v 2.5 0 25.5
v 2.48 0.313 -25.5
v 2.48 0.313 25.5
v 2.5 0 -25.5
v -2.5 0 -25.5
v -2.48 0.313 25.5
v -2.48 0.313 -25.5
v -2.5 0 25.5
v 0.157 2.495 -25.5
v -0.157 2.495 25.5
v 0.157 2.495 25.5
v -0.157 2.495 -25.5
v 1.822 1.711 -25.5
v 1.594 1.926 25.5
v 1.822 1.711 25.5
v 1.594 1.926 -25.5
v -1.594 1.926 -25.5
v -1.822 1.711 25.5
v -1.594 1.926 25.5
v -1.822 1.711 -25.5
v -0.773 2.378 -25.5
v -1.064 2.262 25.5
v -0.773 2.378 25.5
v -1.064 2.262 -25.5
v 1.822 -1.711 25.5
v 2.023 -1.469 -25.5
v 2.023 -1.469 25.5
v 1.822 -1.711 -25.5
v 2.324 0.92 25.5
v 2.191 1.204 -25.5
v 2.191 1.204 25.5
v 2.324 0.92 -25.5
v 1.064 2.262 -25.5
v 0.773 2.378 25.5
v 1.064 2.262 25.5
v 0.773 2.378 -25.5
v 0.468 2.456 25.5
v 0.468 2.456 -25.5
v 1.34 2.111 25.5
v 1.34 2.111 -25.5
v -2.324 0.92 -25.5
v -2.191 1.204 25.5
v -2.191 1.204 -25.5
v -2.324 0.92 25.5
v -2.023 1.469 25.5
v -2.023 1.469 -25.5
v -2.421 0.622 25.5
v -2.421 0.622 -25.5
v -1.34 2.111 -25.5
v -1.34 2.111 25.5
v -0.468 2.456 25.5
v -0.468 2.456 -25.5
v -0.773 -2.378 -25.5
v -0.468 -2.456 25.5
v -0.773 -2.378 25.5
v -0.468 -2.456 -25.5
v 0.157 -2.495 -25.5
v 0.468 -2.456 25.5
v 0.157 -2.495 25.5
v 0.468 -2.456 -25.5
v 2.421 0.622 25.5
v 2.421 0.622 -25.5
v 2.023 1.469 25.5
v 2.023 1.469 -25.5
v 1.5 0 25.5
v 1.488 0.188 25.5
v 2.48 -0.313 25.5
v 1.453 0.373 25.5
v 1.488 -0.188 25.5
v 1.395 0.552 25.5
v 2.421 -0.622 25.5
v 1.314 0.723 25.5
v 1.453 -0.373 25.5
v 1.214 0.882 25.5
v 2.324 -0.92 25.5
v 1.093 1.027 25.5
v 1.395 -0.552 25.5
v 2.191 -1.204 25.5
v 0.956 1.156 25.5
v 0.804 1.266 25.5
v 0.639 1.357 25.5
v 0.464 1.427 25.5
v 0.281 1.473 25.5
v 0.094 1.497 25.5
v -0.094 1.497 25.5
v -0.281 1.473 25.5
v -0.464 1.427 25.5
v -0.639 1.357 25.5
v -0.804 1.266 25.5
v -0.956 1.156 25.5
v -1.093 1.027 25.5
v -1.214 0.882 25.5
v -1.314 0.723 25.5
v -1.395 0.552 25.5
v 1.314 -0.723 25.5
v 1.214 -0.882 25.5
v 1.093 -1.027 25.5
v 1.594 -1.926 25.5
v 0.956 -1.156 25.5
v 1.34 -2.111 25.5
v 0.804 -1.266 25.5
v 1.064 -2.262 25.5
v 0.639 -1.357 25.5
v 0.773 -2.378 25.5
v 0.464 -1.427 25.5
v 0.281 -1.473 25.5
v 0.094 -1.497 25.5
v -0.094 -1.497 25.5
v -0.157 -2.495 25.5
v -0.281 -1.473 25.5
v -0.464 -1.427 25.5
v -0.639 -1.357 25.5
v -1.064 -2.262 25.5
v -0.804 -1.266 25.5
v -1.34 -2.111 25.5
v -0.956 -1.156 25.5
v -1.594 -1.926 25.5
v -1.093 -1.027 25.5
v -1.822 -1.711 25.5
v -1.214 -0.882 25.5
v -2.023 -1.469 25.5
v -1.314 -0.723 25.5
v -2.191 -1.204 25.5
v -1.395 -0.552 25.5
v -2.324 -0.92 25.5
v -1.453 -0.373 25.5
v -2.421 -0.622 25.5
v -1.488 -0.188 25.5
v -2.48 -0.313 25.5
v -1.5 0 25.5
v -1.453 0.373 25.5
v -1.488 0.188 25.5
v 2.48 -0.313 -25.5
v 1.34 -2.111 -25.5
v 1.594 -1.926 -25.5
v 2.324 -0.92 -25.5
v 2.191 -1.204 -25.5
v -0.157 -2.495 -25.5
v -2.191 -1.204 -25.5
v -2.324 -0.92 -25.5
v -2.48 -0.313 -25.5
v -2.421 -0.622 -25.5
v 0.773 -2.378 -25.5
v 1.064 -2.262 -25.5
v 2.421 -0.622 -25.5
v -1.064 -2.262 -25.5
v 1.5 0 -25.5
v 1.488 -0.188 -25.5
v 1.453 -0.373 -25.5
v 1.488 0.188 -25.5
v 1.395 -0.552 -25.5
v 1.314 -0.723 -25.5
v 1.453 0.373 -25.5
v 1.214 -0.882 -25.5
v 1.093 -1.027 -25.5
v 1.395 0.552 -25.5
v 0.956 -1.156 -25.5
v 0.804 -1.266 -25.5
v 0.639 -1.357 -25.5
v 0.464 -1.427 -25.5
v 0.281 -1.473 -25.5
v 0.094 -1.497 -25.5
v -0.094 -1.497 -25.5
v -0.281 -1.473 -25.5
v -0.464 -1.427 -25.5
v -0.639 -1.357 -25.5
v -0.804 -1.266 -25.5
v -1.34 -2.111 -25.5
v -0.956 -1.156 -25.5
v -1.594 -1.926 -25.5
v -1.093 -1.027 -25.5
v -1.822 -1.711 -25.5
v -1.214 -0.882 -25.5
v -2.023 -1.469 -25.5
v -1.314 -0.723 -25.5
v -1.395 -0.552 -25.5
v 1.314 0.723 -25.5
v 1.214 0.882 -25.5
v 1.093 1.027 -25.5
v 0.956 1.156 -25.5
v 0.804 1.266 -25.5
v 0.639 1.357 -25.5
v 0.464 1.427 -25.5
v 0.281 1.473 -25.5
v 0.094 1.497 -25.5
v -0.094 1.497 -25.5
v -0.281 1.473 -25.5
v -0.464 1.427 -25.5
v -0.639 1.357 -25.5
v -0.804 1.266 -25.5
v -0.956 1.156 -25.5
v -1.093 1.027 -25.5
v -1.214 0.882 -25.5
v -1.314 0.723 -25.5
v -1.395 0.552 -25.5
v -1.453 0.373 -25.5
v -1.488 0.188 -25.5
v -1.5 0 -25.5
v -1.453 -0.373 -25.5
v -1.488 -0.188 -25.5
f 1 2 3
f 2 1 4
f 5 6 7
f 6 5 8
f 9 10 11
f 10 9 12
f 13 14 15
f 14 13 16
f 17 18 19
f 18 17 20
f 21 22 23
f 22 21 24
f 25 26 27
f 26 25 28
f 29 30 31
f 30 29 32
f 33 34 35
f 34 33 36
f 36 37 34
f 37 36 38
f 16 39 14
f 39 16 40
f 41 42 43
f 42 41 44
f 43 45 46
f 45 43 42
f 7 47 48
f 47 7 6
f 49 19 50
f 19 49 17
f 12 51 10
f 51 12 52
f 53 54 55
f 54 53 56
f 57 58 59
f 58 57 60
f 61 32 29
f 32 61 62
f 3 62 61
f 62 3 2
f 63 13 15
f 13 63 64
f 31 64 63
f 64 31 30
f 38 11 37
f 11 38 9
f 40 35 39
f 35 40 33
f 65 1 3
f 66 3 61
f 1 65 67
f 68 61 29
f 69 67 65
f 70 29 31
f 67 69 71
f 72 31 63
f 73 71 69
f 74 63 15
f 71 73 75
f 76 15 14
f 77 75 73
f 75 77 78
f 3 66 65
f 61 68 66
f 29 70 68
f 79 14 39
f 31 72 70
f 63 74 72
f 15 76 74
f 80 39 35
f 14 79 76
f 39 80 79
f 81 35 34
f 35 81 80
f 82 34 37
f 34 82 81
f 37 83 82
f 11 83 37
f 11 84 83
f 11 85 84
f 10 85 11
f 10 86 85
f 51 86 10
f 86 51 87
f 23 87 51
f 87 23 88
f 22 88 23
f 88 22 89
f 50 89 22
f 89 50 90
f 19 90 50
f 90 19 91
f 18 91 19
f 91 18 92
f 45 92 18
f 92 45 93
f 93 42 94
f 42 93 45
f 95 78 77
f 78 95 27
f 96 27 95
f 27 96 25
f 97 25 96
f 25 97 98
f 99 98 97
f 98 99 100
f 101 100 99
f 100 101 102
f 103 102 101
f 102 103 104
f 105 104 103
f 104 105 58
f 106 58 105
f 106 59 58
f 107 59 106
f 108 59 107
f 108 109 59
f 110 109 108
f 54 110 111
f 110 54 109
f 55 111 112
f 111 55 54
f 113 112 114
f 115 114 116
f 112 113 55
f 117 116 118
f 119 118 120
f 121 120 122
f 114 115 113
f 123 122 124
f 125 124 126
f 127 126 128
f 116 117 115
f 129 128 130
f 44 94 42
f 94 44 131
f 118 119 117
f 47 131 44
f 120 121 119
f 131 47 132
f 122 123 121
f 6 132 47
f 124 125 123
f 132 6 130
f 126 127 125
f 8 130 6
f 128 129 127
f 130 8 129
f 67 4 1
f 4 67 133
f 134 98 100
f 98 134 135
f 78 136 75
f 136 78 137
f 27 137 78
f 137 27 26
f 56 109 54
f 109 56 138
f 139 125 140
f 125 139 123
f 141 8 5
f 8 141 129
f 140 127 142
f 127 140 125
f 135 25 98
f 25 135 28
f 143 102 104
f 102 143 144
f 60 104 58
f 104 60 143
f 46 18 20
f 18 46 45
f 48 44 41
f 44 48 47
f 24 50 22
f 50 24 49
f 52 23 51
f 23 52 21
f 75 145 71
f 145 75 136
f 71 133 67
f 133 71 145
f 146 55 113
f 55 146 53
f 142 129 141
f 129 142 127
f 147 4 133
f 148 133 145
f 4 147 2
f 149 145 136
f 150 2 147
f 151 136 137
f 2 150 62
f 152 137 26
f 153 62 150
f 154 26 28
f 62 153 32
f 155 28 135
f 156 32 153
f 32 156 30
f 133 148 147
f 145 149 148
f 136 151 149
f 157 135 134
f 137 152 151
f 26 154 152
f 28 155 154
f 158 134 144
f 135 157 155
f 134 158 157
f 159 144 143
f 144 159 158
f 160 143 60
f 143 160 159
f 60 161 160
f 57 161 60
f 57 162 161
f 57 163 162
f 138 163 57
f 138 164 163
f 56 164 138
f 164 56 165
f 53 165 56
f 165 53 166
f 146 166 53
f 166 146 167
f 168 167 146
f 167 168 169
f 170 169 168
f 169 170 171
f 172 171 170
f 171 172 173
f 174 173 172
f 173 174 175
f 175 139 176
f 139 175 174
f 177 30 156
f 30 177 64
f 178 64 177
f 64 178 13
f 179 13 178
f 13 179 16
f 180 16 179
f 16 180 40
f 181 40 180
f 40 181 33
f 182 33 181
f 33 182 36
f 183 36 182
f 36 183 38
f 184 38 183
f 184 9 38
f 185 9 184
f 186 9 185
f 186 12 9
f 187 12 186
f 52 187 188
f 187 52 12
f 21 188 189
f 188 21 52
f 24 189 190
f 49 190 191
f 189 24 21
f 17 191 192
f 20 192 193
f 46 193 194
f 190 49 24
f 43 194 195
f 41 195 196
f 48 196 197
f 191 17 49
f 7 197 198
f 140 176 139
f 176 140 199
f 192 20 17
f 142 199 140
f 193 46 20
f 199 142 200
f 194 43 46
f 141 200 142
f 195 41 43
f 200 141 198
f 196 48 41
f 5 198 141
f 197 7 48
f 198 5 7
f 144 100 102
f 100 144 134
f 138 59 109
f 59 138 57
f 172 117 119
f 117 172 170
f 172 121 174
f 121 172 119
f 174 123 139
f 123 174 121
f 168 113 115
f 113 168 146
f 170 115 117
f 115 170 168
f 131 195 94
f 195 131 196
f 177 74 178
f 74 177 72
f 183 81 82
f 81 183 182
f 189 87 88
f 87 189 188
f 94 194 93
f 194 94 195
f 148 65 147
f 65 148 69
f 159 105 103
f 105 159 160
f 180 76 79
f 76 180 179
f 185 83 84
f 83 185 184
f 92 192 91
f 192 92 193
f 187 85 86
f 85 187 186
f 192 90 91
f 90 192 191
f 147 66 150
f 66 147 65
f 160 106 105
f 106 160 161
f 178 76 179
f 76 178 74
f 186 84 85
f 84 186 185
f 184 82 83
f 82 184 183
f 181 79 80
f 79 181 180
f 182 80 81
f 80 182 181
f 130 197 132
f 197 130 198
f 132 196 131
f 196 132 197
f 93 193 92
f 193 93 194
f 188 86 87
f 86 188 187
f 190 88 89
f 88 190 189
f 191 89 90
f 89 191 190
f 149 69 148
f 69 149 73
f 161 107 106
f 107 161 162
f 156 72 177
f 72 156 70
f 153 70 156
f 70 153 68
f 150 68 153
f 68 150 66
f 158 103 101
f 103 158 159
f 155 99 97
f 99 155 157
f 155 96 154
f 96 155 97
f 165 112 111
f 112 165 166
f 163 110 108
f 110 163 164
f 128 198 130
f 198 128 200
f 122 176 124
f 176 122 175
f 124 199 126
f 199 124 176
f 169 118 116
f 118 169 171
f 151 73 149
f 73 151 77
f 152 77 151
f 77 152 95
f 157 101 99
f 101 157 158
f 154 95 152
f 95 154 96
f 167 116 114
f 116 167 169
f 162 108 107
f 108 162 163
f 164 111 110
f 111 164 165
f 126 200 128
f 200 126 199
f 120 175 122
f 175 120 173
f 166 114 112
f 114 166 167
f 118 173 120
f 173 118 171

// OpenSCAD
$fn = 50;


difference() {
	union() {
		translate(v = [0, 0, -25.5000000000]) {
			cylinder(h = 51, r = 2.5000000000);
		}
	}
	union() {
		translate(v = [0, 0, -100.0000000000]) {
			cylinder(h = 200, r = 1.5000000000);
		}
	}
}
